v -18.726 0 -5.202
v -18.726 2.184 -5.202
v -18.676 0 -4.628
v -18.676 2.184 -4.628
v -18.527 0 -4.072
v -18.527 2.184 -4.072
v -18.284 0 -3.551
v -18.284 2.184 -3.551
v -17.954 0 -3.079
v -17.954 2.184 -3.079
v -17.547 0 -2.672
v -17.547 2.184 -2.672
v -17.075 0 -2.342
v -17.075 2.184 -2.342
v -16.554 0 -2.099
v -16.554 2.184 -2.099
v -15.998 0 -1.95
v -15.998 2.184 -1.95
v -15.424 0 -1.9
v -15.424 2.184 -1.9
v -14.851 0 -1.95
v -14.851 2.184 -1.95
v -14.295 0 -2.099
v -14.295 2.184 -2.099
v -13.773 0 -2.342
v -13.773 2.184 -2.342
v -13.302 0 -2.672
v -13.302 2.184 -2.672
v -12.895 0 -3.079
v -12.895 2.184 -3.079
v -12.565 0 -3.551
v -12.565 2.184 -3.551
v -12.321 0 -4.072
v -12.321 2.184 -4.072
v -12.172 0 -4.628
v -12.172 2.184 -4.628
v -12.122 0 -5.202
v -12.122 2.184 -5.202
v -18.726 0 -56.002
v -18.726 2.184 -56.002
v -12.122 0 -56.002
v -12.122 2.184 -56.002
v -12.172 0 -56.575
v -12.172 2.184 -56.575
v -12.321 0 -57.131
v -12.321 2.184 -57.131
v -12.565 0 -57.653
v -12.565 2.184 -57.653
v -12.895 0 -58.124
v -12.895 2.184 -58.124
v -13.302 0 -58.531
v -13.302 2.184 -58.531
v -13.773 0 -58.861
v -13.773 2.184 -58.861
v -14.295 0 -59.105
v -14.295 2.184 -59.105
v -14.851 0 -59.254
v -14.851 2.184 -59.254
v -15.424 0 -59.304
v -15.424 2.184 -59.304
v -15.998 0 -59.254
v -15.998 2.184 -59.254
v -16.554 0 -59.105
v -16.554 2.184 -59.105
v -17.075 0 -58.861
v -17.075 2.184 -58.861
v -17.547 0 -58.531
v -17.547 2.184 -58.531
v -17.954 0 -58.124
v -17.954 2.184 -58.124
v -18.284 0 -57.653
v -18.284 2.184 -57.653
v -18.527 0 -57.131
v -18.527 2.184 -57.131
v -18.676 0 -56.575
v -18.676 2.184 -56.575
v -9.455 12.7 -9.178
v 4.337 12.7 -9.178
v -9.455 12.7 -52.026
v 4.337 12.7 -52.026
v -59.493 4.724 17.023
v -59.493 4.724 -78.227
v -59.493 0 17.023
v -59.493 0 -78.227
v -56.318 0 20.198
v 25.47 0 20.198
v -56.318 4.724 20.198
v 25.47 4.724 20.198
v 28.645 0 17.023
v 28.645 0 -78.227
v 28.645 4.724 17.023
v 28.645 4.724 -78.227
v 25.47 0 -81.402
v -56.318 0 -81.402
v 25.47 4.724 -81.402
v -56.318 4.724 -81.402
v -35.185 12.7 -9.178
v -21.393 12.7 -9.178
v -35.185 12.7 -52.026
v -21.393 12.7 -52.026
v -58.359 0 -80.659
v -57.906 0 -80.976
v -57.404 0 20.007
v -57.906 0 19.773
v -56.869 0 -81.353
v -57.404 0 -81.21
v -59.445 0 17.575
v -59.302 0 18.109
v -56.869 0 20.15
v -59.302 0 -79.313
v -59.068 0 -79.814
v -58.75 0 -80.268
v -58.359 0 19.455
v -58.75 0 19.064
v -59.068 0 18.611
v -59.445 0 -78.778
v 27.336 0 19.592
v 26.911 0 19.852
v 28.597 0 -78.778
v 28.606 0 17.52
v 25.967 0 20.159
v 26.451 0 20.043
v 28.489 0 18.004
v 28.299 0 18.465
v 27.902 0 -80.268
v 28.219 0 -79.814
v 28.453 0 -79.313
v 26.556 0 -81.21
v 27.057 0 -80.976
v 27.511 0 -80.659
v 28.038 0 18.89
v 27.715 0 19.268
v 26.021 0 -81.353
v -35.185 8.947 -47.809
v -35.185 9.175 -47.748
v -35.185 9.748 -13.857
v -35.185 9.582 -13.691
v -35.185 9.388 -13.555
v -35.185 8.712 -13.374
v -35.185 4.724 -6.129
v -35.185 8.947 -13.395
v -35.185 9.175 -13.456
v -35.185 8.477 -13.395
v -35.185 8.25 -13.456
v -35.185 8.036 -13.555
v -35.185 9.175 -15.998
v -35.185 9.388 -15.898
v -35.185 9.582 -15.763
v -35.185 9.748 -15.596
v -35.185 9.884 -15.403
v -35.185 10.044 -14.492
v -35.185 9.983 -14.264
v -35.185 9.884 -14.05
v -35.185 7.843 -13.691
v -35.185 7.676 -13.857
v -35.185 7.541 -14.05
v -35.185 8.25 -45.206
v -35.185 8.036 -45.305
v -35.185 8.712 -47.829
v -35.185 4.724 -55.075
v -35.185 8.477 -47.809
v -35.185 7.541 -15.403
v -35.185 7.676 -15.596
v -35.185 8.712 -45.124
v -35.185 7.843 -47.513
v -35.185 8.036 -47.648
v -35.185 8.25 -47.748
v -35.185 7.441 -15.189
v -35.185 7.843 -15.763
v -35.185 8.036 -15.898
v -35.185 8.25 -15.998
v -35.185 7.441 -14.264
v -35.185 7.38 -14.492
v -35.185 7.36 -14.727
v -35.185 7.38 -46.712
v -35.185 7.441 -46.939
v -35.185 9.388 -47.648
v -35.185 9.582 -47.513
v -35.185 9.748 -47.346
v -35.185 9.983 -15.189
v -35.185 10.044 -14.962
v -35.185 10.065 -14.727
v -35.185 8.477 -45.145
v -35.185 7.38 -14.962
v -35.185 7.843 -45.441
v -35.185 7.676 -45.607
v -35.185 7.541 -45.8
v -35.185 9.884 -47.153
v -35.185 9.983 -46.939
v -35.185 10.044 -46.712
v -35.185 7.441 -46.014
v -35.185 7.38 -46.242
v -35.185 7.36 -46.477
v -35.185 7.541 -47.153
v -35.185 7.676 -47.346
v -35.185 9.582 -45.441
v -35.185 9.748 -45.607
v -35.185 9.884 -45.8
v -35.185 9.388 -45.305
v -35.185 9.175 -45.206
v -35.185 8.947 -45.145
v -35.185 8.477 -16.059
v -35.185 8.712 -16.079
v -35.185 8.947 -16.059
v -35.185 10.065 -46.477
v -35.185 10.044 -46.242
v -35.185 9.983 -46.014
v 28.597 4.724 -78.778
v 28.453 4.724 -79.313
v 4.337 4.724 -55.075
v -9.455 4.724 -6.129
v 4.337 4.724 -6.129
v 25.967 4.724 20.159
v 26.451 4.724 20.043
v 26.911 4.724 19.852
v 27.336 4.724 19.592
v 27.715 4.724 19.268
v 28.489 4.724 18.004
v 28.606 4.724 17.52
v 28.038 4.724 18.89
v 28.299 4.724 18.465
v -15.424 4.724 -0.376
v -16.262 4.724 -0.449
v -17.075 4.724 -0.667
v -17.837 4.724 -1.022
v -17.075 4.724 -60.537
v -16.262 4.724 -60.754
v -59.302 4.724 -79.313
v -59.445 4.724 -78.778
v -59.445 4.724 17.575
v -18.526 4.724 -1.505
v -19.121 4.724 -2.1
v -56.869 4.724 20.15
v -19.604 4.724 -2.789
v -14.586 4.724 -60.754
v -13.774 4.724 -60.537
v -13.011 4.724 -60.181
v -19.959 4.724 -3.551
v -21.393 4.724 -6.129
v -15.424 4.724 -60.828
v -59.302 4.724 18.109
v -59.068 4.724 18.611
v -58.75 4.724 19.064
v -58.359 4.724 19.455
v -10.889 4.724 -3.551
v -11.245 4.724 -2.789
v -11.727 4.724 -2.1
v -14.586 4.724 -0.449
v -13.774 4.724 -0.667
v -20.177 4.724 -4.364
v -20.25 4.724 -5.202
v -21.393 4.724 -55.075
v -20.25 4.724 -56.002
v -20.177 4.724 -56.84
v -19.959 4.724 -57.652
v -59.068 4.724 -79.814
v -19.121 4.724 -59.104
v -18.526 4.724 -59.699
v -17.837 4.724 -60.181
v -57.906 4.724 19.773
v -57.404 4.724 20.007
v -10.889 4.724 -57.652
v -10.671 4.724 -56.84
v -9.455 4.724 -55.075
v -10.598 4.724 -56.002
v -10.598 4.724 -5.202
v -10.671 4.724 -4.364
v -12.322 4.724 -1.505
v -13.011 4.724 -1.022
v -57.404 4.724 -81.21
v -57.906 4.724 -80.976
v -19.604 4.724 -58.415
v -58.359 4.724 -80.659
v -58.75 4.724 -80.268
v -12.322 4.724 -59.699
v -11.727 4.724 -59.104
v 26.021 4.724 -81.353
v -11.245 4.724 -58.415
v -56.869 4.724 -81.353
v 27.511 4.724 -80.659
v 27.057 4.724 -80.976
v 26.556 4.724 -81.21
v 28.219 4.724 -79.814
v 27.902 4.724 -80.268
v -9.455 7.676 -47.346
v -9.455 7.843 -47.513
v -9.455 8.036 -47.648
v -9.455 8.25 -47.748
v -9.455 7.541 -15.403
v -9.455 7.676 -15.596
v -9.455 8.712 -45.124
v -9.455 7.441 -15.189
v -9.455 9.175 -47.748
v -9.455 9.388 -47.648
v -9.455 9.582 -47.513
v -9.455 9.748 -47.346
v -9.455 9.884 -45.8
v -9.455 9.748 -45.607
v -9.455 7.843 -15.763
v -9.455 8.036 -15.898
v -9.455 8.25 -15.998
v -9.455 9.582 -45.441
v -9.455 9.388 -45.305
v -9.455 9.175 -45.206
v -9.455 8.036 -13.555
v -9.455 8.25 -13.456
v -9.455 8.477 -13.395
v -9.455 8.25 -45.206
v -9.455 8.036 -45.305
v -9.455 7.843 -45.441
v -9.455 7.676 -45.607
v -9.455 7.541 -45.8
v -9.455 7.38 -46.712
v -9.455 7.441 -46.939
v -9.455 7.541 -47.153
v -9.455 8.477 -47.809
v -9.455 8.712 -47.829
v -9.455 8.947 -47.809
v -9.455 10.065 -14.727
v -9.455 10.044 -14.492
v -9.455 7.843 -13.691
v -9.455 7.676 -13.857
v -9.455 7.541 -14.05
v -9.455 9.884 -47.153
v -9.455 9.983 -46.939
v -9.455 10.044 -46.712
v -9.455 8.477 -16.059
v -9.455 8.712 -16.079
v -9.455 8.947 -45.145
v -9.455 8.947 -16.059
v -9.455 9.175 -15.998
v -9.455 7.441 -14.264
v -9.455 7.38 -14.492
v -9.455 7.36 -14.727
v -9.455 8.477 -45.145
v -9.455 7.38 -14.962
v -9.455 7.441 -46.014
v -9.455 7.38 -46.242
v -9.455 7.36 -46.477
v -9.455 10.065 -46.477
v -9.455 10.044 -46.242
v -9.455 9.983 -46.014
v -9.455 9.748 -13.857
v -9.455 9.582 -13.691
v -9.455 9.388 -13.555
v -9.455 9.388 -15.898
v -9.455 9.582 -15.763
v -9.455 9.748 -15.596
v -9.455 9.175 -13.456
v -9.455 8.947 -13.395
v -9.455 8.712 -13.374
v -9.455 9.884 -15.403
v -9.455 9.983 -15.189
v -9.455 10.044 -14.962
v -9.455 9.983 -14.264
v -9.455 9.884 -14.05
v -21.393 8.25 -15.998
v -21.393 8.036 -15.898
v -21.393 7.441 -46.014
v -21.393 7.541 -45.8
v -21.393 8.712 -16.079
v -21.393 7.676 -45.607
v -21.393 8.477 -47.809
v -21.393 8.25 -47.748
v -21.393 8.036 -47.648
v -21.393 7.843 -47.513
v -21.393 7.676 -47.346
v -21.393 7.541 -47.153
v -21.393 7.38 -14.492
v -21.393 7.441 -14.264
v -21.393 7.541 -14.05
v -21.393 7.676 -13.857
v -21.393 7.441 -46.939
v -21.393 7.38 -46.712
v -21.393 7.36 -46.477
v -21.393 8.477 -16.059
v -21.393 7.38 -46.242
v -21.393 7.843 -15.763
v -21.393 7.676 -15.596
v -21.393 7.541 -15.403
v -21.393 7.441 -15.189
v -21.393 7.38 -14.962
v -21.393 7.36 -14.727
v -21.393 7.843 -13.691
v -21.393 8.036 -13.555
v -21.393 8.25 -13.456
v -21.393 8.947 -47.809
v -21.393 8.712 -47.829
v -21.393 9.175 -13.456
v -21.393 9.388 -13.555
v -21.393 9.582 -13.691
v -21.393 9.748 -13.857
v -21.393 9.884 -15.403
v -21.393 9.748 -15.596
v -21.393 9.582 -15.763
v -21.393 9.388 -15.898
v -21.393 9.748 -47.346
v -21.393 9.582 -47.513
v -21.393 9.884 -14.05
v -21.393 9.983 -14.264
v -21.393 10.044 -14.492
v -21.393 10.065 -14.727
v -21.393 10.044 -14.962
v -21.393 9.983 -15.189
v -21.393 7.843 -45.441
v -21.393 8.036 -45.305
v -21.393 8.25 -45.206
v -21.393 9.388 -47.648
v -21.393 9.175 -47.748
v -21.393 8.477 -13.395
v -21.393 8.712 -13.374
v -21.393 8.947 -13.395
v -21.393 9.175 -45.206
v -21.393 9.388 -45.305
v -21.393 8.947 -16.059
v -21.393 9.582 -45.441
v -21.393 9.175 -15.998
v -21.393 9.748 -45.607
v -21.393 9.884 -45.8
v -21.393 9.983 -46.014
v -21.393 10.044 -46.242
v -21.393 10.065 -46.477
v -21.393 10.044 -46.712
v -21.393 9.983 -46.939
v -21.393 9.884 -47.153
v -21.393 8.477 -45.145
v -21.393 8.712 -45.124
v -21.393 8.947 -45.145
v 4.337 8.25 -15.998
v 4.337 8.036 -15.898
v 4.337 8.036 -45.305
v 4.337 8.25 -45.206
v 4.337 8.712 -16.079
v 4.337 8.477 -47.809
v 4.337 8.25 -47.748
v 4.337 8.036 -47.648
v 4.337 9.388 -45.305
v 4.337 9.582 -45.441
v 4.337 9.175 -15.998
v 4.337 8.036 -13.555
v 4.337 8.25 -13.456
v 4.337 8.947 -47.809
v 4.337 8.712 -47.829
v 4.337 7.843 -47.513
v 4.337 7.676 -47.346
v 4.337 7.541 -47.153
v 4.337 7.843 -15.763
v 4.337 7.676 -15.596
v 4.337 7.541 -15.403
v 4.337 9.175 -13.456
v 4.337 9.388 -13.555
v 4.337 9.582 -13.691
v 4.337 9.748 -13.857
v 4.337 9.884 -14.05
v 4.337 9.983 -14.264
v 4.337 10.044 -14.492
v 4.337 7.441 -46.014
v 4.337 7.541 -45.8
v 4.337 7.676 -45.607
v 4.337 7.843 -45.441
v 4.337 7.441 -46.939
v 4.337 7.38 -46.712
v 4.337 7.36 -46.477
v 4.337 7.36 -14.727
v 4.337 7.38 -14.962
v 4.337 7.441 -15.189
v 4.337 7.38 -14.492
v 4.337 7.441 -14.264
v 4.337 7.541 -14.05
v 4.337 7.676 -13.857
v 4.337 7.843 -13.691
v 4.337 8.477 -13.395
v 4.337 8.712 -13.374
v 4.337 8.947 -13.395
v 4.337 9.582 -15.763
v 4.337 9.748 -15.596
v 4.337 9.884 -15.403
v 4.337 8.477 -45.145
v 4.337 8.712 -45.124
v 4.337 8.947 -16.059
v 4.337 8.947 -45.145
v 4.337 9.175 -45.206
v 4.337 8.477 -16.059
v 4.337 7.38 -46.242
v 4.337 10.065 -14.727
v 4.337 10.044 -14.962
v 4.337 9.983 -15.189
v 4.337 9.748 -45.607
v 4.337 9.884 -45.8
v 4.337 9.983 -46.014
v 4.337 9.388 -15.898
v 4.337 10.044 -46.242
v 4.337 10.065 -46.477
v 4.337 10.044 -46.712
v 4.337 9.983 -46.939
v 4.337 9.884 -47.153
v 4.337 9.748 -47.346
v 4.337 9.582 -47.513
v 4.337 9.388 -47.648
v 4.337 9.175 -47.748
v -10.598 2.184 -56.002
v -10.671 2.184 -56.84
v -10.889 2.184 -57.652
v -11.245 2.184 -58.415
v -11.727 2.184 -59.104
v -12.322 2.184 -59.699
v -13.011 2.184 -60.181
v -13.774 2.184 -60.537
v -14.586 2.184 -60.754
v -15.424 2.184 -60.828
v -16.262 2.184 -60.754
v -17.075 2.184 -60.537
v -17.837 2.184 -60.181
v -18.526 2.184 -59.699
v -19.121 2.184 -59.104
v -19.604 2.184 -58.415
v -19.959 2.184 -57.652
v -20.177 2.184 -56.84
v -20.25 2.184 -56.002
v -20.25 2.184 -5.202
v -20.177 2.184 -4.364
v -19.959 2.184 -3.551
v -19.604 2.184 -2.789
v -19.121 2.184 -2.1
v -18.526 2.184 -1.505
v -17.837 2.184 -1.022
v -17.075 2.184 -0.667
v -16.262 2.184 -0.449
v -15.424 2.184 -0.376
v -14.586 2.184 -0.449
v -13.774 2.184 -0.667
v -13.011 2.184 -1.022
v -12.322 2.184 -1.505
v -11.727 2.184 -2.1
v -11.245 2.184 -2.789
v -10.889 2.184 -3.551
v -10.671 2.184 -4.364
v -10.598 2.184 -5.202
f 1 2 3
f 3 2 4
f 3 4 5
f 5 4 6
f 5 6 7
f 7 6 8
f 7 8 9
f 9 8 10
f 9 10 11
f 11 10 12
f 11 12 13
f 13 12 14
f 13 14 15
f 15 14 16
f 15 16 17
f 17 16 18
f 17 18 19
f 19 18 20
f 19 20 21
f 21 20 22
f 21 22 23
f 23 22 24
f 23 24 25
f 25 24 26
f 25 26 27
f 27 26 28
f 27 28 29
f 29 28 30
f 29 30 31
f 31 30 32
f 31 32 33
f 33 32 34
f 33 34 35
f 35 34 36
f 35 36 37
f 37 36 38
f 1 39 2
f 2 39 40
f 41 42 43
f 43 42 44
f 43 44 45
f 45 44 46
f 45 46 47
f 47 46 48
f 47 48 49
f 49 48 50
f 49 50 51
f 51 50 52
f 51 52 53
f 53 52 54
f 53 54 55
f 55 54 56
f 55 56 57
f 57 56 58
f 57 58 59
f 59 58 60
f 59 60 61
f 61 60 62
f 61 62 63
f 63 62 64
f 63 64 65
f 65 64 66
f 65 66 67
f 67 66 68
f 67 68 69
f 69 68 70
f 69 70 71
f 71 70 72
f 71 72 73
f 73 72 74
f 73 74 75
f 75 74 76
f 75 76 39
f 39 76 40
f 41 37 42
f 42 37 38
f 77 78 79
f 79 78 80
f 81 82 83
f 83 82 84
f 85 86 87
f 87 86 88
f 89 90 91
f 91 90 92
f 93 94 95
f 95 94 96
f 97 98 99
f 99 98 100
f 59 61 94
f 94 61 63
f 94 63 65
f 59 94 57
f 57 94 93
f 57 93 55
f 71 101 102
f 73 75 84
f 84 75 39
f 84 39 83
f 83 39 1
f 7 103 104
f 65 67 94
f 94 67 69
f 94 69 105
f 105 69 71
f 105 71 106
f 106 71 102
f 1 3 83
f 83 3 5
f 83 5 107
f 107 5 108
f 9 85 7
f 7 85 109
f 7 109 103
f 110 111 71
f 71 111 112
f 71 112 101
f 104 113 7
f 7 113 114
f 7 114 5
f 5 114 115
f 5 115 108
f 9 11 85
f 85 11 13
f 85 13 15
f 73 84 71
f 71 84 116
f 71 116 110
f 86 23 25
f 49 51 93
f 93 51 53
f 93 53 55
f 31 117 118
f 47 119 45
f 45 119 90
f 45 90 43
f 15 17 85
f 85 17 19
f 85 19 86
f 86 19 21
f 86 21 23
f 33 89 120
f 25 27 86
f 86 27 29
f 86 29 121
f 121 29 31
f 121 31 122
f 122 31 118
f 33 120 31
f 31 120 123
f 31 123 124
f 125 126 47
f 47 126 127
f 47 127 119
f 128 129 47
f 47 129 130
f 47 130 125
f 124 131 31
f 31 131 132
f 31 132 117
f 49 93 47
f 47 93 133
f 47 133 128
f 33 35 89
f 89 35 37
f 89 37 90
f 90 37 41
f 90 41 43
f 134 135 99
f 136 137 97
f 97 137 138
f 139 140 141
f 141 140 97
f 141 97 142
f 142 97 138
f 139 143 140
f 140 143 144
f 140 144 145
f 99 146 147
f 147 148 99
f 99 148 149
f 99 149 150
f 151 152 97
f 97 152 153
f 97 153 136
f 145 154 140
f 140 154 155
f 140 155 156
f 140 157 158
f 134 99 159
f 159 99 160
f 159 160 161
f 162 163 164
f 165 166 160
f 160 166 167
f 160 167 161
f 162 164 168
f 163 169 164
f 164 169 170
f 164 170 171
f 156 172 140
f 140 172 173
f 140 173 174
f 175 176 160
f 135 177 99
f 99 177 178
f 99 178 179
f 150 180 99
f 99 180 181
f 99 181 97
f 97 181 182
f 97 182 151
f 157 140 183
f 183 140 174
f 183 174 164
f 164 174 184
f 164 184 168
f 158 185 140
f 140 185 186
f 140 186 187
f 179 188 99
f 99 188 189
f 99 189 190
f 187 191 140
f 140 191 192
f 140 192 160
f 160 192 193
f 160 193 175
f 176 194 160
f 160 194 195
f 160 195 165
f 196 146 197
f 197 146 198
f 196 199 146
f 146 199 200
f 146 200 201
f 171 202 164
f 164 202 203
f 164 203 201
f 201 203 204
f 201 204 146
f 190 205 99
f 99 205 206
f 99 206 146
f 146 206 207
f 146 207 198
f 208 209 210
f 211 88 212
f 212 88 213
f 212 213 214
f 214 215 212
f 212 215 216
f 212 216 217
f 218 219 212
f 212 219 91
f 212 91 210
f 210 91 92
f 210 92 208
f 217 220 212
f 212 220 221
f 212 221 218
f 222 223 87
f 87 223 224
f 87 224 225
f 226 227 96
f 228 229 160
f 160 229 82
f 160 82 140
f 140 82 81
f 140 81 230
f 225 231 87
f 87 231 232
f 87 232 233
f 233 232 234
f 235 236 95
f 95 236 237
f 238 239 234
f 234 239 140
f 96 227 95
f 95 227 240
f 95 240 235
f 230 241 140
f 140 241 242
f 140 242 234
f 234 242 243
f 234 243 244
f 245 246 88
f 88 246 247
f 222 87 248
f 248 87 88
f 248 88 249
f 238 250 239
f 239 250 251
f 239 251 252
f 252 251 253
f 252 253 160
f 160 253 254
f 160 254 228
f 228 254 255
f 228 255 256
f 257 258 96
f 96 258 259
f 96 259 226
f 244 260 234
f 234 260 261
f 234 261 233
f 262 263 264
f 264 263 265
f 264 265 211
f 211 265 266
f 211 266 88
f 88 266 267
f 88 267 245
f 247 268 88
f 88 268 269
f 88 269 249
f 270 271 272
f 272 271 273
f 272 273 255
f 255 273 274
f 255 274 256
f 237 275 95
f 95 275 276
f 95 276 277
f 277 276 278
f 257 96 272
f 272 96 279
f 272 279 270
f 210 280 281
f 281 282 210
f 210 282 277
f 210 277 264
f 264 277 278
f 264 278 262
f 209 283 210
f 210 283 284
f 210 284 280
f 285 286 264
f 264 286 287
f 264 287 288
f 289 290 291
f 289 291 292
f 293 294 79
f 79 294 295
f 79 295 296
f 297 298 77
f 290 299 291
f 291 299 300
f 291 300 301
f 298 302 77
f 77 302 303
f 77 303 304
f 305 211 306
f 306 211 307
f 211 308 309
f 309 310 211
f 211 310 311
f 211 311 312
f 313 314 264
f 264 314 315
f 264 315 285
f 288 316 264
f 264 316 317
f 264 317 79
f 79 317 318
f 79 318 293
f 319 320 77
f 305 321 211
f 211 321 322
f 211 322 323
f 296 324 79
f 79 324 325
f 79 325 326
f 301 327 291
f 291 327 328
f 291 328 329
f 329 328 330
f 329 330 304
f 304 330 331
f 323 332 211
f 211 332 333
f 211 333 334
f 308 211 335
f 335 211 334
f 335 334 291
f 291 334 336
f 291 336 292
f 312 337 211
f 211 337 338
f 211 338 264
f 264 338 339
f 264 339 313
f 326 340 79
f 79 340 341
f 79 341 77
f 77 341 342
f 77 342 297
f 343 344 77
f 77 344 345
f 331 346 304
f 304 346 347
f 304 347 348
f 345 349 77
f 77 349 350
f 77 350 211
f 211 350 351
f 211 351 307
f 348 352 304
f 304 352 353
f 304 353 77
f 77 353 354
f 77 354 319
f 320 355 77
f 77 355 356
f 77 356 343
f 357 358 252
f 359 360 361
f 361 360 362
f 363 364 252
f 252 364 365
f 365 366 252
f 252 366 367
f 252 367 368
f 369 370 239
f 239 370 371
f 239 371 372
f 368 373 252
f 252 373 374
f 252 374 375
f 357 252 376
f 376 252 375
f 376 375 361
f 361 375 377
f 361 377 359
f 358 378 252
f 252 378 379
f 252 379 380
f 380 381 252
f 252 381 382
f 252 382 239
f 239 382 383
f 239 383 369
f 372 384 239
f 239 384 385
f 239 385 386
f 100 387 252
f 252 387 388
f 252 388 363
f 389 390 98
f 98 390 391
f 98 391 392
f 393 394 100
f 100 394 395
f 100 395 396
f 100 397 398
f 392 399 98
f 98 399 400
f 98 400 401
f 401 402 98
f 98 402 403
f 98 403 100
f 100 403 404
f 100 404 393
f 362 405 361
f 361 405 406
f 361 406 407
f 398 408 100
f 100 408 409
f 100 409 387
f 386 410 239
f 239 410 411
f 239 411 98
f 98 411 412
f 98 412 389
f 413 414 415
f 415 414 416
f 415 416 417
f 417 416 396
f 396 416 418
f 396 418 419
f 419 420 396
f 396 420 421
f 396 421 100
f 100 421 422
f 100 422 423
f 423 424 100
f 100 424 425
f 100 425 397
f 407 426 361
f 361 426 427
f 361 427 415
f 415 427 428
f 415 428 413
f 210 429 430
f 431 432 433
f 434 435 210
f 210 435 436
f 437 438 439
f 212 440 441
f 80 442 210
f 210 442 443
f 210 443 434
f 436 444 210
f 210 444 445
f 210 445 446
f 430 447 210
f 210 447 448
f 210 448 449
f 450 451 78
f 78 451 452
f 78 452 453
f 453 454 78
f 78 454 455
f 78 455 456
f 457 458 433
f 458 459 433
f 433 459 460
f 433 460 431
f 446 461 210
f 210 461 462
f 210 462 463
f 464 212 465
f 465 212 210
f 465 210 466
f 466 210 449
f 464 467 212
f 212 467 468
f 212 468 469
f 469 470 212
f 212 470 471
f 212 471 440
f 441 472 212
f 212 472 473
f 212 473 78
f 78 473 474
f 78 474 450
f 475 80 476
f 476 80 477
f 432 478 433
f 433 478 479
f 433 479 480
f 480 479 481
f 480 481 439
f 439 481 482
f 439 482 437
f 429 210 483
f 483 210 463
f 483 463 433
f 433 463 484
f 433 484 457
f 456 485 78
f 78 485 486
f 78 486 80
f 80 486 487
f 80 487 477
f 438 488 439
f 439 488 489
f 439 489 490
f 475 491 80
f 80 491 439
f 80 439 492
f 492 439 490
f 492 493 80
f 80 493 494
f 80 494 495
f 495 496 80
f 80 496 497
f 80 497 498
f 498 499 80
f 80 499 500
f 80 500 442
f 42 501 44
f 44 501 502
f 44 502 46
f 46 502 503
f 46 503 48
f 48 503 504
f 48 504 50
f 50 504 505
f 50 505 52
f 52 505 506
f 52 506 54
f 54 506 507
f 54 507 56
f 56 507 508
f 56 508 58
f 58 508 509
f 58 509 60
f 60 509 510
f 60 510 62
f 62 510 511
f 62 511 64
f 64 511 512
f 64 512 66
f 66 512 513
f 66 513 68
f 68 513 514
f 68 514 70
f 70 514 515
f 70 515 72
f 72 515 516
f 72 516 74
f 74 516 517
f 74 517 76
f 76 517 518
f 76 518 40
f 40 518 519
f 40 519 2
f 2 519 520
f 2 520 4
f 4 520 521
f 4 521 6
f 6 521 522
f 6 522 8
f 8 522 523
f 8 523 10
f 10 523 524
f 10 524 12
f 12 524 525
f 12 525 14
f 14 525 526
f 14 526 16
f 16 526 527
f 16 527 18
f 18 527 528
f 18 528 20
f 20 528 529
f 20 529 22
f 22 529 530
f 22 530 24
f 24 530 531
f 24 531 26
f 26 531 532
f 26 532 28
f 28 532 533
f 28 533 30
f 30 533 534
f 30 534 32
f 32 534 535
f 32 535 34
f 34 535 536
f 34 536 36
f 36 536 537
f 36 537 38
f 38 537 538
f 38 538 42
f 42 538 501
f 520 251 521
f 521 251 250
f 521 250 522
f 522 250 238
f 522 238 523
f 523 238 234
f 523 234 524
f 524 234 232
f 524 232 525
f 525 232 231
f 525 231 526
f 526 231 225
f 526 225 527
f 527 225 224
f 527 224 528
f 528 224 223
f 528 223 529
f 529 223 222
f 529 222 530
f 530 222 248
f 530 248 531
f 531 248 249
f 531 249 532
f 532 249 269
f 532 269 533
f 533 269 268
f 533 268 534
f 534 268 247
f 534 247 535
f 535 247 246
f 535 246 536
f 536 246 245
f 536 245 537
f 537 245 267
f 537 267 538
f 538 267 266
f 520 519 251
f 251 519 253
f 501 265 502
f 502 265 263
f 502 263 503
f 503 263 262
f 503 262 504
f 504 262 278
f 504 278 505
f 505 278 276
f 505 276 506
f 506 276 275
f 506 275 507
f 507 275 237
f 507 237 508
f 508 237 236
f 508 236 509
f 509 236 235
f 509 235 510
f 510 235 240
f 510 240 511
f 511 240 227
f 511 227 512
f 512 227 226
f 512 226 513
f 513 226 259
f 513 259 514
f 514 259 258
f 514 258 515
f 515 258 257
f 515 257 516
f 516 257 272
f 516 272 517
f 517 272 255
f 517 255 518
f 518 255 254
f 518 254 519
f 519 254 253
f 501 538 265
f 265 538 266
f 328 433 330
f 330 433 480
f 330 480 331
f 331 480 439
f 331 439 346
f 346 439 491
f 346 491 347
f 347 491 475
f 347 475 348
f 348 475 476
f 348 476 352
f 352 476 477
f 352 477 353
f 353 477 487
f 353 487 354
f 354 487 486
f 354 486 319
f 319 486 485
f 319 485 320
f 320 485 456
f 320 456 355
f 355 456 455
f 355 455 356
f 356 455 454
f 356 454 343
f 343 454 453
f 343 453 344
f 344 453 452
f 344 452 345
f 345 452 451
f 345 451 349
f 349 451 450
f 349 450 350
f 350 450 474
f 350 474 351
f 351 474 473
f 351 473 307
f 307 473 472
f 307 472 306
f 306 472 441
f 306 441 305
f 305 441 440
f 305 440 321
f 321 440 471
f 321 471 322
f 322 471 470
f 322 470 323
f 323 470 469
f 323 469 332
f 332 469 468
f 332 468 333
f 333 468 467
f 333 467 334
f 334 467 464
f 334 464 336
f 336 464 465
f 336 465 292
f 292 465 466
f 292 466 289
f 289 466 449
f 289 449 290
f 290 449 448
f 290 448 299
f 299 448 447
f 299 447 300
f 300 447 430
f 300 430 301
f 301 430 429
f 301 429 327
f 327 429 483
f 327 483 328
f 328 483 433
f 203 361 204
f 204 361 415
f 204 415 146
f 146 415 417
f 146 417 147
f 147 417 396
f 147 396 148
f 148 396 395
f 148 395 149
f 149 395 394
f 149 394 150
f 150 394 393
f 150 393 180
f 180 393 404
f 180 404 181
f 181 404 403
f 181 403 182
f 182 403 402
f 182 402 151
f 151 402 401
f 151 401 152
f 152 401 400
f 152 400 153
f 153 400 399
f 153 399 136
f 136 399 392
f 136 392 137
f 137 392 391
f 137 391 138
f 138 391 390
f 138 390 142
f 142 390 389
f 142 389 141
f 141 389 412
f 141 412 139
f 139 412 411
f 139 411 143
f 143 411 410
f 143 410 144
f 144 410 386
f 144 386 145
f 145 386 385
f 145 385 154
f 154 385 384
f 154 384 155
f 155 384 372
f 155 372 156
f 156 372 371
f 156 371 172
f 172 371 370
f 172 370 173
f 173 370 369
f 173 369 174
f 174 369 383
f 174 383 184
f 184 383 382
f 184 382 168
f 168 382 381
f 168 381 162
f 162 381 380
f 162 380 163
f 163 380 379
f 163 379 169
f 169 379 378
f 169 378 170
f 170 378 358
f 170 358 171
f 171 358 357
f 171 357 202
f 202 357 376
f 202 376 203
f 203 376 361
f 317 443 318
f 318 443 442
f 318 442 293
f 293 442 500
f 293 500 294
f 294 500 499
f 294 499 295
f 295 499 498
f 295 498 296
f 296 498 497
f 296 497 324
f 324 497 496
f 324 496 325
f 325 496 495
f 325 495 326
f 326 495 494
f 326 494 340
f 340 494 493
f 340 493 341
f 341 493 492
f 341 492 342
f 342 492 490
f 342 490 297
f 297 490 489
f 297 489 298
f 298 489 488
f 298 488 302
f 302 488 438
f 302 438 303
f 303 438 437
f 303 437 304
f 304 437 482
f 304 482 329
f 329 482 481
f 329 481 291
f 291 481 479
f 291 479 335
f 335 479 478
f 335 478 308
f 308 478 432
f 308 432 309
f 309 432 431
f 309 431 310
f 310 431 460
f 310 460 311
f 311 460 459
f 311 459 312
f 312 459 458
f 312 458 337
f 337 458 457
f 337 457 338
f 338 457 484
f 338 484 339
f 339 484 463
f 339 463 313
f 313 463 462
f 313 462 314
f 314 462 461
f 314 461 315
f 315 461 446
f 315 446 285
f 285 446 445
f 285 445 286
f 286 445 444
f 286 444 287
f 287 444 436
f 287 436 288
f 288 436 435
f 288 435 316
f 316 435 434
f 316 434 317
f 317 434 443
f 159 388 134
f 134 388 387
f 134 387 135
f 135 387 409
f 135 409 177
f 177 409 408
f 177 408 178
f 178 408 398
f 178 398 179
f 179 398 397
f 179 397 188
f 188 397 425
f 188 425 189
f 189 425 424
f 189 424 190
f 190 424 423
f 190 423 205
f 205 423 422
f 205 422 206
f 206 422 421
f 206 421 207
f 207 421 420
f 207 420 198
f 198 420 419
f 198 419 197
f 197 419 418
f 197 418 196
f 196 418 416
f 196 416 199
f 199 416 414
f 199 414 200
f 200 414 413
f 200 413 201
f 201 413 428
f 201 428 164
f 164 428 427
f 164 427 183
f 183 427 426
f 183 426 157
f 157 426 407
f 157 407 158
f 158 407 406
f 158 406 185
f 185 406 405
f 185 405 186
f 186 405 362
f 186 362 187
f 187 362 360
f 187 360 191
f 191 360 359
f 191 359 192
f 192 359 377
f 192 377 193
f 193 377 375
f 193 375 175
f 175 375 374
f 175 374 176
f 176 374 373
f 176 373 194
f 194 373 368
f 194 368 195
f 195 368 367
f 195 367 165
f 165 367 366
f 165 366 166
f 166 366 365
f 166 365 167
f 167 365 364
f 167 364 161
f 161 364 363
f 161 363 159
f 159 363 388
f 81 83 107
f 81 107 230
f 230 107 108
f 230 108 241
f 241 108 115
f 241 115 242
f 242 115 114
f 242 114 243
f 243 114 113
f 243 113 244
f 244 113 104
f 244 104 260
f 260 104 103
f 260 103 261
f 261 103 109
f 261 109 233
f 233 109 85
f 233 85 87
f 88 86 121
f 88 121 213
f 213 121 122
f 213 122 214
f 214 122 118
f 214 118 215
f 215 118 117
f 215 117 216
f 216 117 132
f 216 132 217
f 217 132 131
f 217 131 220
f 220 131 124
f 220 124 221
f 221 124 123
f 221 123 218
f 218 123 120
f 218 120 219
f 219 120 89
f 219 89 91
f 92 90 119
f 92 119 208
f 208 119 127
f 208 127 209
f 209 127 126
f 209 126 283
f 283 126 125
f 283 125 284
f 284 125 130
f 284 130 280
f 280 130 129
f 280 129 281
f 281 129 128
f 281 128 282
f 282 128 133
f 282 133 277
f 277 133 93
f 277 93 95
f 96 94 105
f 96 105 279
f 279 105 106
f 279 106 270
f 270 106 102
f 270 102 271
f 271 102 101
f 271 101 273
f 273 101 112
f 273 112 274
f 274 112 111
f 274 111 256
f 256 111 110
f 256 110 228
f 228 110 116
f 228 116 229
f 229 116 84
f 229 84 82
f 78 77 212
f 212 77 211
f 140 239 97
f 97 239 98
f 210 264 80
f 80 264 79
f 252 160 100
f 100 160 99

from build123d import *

# Parameters (mm, degrees)
SKETCH1_W             = 88.138
SKETCH1_H             = 101.6
BOSS_EXTRUDE1_DEPTH   = 12.7
SKETCH2_W             = 24.3078
SKETCH2_H             = 101.6
SKETCH2_W_2           = 11.938
CUT_EXTRUDE1_DEPTH    = 7.9756
CUT_EXTRUDE2_DEPTH    = 102.139918983
CUT_EXTRUDE3_DEPTH    = 2.54
F_6_32_TAPPED_HOLE1_D = 2.7051
FILLET1_R             = 3.175
CUT_EXTRUDE4_DEPTH    = 105.220067893


with BuildPart() as part:
    # Sketch1 → Boss-Extrude1 (new body)
    with BuildSketch(Plane(origin=(0, 0, 0), x_dir=(1, 0, 0), z_dir=(0, 1, 0))):
        with Locations((-15.42415, 30.601708333)):
            Rectangle(SKETCH1_W, SKETCH1_H)
    extrude(amount=BOSS_EXTRUDE1_DEPTH)

    # Sketch2 → Cut-Extrude1 (cut)
    with BuildSketch(Plane(origin=(0, 12.7, 0), x_dir=(1, 0, 0), z_dir=(0, 1, 0))):
        with Locations((-47.33925, 30.601708333)):
            Rectangle(SKETCH2_W, SKETCH2_H)
        with Locations((16.49095, 30.601708333)):
            Rectangle(SKETCH2_W, SKETCH2_H)
        with Locations((-15.42415, 30.601708333)):
            Rectangle(SKETCH2_W_2, SKETCH2_H)
    extrude(amount=-CUT_EXTRUDE1_DEPTH, mode=Mode.SUBTRACT)

    # Sketch3 → Cut-Extrude2 (cut, through all)
    with BuildSketch(Plane(origin=(0, 4.7244, 0), x_dir=(1, 0, 0), z_dir=(0, 1, 0))):
        with BuildLine():
            Line((-18.72615, 5.201708333), (-18.72615, 56.001708333))
            ThreePointArc((-18.72615, 56.001708333), (-15.42415, 59.303708333), (-12.12215, 56.001708333))
            Line((-12.12215, 56.001708333), (-12.12215, 5.201708333))
            ThreePointArc((-12.12215, 5.201708333), (-15.42415, 1.899708333), (-18.72615, 5.201708333))
        make_face()
    extrude(amount=-CUT_EXTRUDE2_DEPTH, mode=Mode.SUBTRACT)

    # Sketch4 → Cut-Extrude3 (cut)
    with BuildSketch(Plane(origin=(0, 4.7244, 0), x_dir=(1, 0, 0), z_dir=(0, 1, 0))):
        with BuildLine():
            Line((-20.25015, 5.201708333), (-20.25015, 56.001708333))
            ThreePointArc((-20.25015, 56.001708333), (-15.42415, 60.827708333), (-10.59815, 56.001708333))
            Line((-10.59815, 56.001708333), (-10.59815, 5.201708333))
            ThreePointArc((-10.59815, 5.201708333), (-15.42415, 0.375708333), (-20.25015, 5.201708333))
        make_face()
    extrude(amount=-CUT_EXTRUDE3_DEPTH, mode=Mode.SUBTRACT)

    # #6-32 Tapped Hole1 (through all)
    with Locations(Plane(origin=(4.33705, 0, 0), x_dir=(0, 0, -1), z_dir=(1, 0, 0))):
        with Locations((14.726708333, 8.7122), (46.476708333, 8.7122)):
            Hole(F_6_32_TAPPED_HOLE1_D / 2)

    # Fillet1
    fillet1_edges = [part.edges().sort_by_distance(p)[0] for p in [
        (-59.49315, 2.3622, -81.401708333),
        (-59.49315, 2.3622, 20.198291667),
        (28.64485, 2.3622, -81.401708333),
        (28.64485, 2.3622, 20.198291667),
    ]]
    fillet(fillet1_edges, radius=FILLET1_R)

    # Sketch8 → Cut-Extrude4 (cut, through all)
    with BuildSketch(Plane.ZY.offset(35.18535)):
        Polygon((-6.128808333, 4.7244), (-9.206801398, 12.7762), (20.198291667, 12.7), (20.198291667, 4.7244), align=None)
        Polygon((-55.074608333, 4.7244), (-51.996615269, 12.7762), (-81.401708333, 12.7), (-81.401708333, 4.7244), align=None)
    extrude(amount=-CUT_EXTRUDE4_DEPTH, mode=Mode.SUBTRACT)


solid = part.part
